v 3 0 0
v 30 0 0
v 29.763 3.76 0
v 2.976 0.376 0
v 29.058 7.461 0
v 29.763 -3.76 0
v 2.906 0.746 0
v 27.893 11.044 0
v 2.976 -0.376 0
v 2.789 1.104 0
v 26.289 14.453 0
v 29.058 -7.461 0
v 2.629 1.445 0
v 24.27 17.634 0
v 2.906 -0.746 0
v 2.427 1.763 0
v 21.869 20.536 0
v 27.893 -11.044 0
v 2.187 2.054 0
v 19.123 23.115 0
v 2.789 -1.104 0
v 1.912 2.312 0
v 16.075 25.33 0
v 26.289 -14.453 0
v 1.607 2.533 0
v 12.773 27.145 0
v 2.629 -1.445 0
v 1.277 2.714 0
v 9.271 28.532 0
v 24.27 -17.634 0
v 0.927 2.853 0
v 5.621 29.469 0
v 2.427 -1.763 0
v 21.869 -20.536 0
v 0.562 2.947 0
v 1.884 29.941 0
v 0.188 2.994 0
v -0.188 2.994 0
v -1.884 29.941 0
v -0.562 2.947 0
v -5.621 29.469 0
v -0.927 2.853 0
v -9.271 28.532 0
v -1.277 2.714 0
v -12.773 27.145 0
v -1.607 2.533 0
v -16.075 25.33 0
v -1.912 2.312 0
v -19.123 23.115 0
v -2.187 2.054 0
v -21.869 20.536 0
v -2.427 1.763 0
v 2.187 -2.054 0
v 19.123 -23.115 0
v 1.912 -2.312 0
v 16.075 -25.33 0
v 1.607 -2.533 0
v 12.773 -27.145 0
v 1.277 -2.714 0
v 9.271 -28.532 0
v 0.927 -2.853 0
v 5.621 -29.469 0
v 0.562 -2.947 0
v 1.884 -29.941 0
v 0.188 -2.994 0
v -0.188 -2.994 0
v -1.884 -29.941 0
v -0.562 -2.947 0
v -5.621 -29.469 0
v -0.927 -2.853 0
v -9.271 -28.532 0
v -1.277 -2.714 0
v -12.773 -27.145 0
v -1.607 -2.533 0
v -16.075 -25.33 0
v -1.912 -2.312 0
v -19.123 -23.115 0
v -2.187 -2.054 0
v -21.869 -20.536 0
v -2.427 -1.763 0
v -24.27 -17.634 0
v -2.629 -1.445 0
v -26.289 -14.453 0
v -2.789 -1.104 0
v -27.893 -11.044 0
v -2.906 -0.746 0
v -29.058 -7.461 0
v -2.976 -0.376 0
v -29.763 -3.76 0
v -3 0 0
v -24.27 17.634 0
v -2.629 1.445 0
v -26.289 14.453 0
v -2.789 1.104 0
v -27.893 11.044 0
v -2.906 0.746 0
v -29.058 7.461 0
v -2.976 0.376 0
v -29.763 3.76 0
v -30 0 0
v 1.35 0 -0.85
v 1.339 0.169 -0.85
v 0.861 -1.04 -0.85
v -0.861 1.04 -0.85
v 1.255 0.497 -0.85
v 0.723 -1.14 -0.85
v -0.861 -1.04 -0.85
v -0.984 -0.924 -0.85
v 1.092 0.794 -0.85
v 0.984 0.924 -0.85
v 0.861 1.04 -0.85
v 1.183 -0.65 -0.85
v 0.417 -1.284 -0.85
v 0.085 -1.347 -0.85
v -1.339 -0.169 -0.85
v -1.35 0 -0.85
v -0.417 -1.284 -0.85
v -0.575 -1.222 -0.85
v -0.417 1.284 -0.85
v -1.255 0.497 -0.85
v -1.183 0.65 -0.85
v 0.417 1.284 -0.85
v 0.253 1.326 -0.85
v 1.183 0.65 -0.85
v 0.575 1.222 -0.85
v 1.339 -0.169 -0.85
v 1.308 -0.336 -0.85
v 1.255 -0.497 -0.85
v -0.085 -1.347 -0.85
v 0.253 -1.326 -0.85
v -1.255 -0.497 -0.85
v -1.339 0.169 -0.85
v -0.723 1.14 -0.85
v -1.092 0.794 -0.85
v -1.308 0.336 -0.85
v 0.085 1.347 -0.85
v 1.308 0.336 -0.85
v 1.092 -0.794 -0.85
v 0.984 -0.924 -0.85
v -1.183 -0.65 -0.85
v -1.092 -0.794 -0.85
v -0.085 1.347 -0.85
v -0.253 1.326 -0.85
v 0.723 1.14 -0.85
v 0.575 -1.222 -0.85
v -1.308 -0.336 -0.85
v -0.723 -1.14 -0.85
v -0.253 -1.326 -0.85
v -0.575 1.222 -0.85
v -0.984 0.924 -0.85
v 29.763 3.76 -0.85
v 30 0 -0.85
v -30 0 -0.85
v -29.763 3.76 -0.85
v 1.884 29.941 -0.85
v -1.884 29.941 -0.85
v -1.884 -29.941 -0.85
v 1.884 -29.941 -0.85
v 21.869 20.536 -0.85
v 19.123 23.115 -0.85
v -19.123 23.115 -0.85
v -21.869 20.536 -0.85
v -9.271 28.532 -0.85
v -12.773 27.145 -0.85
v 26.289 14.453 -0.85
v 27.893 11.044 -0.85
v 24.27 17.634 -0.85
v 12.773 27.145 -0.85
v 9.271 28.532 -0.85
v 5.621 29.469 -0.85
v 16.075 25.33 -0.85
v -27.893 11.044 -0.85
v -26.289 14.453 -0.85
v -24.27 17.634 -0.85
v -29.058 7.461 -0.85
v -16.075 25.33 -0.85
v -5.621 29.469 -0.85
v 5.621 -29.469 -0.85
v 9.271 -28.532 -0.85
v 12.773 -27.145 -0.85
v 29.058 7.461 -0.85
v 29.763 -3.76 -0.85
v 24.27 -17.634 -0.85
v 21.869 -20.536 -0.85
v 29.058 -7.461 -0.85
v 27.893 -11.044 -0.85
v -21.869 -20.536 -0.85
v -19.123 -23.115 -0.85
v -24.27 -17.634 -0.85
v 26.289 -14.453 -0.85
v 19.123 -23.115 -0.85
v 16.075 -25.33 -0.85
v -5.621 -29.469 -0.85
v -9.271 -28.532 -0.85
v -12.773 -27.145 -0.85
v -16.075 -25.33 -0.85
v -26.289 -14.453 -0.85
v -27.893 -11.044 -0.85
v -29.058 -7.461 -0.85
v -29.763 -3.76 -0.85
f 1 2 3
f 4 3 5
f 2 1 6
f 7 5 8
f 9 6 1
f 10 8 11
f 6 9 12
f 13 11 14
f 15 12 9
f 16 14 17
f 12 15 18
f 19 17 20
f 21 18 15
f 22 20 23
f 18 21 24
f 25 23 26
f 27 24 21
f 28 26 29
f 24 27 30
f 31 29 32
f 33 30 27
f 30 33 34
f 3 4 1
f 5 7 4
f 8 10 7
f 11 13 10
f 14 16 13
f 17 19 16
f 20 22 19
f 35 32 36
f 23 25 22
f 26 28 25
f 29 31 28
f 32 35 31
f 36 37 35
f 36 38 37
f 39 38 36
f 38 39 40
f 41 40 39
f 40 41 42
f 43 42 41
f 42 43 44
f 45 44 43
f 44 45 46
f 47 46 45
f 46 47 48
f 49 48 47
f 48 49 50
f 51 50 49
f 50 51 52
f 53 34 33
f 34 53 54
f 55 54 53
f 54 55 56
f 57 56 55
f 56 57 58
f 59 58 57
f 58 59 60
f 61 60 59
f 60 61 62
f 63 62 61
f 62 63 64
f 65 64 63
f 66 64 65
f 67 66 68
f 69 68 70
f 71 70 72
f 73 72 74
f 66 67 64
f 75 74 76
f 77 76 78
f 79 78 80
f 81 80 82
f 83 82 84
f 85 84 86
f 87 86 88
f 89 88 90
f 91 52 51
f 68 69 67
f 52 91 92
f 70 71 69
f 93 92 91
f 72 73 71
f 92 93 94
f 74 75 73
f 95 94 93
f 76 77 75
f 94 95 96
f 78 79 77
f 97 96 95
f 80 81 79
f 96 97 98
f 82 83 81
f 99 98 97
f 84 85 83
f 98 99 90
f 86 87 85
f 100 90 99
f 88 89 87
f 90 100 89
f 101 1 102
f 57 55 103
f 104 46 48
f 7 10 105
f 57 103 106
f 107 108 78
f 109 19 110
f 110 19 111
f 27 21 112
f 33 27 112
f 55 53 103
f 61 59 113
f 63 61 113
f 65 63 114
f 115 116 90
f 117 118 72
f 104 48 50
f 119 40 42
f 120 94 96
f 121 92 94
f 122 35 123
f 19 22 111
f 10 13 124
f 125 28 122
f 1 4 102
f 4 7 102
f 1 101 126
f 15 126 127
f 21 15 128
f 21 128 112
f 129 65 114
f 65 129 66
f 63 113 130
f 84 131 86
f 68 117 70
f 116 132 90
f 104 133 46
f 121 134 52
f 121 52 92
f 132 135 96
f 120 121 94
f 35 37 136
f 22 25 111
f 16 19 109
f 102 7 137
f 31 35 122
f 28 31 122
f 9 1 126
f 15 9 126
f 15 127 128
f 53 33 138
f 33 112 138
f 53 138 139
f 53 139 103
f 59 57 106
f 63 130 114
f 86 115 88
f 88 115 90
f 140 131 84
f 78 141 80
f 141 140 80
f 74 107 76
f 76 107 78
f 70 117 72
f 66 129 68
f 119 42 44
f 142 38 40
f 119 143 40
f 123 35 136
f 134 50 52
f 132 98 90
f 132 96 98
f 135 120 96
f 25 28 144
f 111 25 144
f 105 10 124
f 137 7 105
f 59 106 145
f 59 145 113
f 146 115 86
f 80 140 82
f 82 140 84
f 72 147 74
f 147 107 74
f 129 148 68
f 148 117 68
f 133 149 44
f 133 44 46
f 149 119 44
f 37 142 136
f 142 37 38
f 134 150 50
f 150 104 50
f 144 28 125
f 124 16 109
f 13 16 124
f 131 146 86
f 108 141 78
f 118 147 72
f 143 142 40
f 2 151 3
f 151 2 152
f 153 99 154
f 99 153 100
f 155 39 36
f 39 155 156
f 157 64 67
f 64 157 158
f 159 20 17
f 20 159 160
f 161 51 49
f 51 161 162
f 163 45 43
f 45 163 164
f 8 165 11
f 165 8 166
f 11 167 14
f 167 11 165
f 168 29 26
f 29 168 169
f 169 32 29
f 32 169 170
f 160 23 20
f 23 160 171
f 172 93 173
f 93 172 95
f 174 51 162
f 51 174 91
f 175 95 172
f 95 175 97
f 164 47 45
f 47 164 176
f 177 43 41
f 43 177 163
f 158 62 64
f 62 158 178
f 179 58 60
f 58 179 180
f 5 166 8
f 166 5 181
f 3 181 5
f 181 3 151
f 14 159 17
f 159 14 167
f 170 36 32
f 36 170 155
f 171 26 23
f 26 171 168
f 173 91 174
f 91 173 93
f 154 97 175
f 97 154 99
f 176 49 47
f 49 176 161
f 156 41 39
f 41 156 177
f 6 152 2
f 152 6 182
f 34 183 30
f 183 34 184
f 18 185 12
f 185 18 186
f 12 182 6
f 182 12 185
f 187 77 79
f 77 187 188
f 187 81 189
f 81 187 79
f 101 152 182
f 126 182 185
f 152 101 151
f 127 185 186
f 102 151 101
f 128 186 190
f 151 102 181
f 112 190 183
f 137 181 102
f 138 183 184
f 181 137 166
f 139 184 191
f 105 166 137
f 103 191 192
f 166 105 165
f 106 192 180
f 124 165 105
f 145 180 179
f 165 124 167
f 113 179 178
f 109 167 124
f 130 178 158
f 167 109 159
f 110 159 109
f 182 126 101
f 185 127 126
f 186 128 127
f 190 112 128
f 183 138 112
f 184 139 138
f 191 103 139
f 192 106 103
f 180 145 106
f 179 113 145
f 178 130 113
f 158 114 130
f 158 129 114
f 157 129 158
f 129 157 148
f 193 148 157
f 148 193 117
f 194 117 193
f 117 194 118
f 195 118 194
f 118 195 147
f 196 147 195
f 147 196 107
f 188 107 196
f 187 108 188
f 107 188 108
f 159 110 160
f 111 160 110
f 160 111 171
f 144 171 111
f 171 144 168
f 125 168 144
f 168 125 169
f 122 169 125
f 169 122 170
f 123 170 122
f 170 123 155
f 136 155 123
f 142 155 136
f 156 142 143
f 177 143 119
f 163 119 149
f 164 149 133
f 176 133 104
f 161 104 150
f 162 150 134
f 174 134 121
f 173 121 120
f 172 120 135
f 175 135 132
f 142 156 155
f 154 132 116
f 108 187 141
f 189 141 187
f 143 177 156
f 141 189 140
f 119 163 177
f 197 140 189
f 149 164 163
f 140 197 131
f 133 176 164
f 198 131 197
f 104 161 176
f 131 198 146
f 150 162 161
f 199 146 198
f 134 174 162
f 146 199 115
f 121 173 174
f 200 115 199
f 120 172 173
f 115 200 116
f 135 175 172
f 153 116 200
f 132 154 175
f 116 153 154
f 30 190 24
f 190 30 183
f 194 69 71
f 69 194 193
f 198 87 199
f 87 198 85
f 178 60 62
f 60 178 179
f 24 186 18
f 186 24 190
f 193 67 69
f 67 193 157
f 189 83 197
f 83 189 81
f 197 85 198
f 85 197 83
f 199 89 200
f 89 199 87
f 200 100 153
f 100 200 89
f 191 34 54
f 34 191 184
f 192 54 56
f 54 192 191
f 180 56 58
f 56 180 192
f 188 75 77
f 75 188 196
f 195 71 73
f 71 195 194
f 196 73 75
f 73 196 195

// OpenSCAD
$fn = 50;


difference() {
	union() {
		translate(v = [0, 0, -0.8500000000]) {
			cylinder(h = 0.8500000000, r = 30.0000000000);
		}
	}
	union() {
		translate(v = [0, 0, 0]) {
			rotate(a = [0, 0, 0]) {
				difference() {
					union() {
						translate(v = [0, 0, -3.8500000000]) {
							cylinder(h = 3.8500000000, r = 1.0000000000);
						}
						translate(v = [0, 0, -0.8500000000]) {
							cylinder(h = 0.8500000000, r1 = 1.3500000000, r2 = 3.0000000000);
						}
						translate(v = [0, 0, -3.8500000000]) {
							cylinder(h = 3.8500000000, r = 1.3500000000);
						}
						translate(v = [0, 0, -3.8500000000]) {
							cylinder(h = 3.8500000000, r = 1.0000000000);
						}
					}
					union();
				}
			}
		}
	}
}
